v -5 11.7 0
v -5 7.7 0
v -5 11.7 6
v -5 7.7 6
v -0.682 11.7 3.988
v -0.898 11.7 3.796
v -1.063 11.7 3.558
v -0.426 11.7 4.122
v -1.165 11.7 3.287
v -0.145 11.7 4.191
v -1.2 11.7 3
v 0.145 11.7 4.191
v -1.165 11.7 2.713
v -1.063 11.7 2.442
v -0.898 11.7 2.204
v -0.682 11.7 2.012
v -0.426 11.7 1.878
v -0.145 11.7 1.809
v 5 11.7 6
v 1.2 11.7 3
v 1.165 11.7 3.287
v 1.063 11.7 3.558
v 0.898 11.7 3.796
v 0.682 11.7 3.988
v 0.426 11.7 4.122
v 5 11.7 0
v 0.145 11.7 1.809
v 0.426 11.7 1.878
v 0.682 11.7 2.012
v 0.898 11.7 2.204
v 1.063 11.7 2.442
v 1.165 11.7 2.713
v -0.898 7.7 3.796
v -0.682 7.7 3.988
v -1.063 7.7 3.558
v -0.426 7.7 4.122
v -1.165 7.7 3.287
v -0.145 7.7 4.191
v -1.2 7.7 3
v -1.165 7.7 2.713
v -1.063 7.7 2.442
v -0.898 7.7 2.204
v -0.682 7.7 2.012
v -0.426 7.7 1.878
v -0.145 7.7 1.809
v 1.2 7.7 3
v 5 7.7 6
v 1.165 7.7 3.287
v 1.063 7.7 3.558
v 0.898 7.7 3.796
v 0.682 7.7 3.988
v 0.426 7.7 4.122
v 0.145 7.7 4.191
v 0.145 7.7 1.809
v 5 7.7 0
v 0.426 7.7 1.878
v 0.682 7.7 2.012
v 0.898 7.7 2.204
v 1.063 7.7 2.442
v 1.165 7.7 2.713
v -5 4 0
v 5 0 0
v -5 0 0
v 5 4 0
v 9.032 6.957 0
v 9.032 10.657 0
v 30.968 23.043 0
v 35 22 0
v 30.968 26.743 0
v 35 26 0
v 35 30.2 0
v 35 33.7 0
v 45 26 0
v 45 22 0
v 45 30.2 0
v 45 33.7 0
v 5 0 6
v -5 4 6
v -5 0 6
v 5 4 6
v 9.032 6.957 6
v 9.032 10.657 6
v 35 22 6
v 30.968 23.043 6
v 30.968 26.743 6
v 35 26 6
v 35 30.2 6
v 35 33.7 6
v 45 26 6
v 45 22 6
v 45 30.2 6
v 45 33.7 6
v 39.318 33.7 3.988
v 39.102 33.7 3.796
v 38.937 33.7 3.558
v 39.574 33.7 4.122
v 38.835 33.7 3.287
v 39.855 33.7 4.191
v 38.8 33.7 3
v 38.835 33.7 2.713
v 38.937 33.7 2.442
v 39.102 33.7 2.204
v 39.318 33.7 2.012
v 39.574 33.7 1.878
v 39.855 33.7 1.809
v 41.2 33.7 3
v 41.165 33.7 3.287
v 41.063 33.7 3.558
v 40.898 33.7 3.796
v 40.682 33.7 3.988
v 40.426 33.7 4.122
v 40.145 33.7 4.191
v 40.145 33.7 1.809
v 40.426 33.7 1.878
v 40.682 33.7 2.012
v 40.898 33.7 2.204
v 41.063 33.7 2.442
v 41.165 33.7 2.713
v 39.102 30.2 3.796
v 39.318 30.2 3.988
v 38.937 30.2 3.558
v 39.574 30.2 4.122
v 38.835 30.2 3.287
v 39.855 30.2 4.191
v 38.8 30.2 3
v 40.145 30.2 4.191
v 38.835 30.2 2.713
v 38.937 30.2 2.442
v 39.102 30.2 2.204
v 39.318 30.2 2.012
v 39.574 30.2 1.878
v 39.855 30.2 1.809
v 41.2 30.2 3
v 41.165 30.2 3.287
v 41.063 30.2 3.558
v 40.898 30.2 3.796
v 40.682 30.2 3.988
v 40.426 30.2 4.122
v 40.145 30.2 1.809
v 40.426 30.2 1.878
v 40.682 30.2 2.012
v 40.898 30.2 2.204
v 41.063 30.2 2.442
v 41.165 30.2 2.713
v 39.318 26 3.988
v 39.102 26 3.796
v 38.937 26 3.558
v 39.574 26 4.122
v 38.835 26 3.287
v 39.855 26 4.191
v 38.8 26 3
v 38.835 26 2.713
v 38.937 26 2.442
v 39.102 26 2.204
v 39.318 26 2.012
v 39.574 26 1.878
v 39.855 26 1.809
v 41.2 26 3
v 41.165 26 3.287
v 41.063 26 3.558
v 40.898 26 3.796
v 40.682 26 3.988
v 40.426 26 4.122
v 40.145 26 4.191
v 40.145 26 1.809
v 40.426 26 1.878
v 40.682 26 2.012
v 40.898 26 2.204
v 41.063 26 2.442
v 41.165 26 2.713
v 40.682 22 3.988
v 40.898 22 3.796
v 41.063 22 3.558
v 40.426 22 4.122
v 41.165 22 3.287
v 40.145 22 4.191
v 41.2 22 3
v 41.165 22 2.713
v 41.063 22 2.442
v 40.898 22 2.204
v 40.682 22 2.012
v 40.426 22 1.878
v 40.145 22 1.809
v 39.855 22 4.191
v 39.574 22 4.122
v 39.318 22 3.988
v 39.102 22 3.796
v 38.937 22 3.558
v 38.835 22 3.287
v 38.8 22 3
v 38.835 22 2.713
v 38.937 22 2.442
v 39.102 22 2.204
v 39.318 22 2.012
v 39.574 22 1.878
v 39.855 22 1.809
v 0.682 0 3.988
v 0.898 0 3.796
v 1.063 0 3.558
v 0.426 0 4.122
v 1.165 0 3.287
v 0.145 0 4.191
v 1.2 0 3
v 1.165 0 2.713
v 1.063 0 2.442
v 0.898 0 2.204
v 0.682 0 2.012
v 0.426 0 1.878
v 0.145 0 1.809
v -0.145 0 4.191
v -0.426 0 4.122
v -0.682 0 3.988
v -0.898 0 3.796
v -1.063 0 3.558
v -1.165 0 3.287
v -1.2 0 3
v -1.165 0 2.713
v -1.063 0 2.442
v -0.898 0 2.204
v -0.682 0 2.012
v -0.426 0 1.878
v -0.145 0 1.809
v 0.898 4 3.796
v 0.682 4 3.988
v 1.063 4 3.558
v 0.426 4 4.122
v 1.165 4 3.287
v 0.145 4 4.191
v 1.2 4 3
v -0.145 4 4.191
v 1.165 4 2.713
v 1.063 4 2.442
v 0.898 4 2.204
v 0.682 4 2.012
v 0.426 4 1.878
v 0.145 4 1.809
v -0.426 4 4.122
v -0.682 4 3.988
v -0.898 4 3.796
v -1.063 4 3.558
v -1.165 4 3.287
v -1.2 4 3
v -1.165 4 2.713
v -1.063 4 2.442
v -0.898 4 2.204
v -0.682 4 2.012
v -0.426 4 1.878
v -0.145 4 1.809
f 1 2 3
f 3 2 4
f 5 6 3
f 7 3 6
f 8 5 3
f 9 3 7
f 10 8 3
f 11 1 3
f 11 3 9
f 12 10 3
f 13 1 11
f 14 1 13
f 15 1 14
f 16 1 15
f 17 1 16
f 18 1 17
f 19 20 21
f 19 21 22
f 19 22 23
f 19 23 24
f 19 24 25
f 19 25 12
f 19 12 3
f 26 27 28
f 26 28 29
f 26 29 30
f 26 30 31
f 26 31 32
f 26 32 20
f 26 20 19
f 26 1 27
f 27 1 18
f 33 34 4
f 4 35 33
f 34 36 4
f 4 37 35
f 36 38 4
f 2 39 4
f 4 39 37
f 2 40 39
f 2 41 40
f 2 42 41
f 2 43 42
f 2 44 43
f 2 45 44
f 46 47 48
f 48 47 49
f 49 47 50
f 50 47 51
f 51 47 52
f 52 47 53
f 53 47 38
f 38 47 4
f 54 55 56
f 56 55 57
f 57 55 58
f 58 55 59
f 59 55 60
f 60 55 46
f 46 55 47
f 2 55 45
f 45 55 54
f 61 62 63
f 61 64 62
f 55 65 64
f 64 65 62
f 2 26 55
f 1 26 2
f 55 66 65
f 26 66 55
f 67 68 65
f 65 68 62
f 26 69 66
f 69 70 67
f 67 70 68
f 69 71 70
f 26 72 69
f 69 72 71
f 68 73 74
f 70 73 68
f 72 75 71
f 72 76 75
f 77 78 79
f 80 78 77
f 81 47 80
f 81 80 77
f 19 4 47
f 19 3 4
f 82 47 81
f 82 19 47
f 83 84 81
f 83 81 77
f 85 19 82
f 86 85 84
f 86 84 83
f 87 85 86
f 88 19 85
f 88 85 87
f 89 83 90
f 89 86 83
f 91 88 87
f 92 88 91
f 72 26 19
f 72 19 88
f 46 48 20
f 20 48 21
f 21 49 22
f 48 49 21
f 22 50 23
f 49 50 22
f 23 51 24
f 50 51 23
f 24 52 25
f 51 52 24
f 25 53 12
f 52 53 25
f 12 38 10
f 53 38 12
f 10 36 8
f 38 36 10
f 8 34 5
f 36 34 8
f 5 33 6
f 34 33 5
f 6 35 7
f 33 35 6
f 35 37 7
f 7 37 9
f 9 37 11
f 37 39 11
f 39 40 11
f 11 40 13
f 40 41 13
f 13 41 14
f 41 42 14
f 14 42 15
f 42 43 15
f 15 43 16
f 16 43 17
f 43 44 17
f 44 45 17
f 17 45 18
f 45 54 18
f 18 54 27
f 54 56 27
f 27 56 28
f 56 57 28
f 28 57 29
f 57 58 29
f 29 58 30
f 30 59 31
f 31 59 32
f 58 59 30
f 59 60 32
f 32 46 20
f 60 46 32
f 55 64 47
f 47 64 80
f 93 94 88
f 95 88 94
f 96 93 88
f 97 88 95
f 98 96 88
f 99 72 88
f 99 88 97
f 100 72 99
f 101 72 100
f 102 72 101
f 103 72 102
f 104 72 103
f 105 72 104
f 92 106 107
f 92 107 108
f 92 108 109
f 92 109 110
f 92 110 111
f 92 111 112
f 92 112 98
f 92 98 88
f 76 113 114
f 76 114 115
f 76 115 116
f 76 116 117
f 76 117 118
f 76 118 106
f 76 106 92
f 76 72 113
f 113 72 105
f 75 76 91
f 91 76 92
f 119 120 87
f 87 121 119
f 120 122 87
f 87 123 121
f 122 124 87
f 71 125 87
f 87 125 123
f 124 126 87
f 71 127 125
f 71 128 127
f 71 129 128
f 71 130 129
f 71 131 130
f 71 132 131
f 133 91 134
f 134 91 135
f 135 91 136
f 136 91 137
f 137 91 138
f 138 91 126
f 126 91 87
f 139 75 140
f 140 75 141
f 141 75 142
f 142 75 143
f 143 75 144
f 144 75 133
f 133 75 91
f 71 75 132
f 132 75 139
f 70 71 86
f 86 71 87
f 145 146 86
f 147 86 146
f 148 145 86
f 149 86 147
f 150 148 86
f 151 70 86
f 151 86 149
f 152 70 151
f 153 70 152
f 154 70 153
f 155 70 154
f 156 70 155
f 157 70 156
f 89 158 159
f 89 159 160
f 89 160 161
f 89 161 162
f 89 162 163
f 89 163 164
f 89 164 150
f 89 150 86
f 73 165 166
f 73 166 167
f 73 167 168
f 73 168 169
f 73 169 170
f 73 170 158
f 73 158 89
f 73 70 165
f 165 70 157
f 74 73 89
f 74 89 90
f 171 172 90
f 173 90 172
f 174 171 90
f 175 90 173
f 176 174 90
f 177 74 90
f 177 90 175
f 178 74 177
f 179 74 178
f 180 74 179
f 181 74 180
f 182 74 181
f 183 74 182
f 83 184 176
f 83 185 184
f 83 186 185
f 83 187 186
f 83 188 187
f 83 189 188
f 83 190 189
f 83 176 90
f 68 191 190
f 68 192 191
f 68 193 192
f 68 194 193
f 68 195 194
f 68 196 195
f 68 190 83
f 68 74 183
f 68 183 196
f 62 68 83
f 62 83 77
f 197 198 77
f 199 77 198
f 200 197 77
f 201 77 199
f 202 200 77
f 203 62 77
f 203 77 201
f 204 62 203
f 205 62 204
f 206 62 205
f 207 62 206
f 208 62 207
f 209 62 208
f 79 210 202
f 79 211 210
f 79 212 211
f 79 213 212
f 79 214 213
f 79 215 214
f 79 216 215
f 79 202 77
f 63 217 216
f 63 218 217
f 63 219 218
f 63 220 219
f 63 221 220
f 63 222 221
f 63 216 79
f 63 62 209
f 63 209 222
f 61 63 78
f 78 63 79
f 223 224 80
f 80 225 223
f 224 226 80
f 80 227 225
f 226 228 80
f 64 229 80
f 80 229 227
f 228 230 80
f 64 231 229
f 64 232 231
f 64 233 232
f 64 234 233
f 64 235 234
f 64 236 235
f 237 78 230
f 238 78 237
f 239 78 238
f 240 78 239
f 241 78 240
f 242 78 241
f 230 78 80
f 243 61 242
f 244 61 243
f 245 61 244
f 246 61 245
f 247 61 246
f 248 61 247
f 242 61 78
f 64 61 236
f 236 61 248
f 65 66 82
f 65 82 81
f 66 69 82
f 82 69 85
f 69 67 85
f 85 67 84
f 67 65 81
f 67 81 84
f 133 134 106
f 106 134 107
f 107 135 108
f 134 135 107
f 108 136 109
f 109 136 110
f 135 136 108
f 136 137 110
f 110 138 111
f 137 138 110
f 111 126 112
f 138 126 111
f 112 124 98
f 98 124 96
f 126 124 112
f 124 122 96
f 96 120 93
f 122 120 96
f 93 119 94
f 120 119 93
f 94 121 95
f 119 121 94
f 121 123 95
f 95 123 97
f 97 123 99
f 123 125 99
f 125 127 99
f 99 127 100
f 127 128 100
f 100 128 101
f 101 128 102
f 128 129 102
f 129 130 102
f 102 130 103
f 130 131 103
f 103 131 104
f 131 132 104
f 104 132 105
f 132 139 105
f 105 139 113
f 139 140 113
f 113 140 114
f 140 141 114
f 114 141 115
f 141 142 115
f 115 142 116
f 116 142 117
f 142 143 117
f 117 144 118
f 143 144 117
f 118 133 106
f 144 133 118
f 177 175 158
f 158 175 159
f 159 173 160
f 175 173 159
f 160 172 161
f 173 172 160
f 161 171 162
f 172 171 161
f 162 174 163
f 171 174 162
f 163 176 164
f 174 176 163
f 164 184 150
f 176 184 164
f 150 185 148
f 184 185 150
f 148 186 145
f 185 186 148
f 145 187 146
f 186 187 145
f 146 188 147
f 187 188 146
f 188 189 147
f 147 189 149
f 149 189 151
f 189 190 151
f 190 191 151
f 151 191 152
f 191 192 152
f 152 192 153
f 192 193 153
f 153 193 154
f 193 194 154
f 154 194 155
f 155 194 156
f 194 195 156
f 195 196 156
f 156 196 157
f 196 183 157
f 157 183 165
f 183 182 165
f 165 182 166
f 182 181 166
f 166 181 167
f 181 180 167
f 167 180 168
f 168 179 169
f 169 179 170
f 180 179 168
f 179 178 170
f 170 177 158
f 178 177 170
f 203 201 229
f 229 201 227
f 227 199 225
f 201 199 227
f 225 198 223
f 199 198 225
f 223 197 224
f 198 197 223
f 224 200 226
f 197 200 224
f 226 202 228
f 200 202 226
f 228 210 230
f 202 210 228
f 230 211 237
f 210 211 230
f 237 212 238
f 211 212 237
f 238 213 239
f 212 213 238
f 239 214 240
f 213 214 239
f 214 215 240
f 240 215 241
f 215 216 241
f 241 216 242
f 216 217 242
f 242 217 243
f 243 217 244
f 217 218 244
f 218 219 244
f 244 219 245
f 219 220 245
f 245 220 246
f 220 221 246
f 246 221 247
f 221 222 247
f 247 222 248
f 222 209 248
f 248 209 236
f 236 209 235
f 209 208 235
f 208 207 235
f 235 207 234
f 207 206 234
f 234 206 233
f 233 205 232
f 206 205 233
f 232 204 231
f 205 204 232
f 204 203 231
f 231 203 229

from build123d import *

# Parameters (mm, degrees)
PAD_DEPTH    = 6
SKETCH001_R  = 1.2
POCKET_DEPTH = 50


with BuildPart() as part:
    # Sketch → Pad (new body)
    with BuildSketch(Plane.XY):
        Polygon((-5, 11.7), (5, 11.7), (35, 33.7), (45, 33.7), (45, 30.2), (35, 30.2), (35, 26), (45, 26), (45, 22), (35, 22), (5, 0), (-5, 0), (-5, 4), (5, 4), (5, 7.7), (-5, 7.7), align=None)
        Polygon((9.032025, 10.656818), (30.967975, 26.743182), (30.967975, 23.043182), (9.032025, 6.956818), align=None, mode=Mode.SUBTRACT)
    extrude(amount=PAD_DEPTH)

    # Sketch001 (on Face12 of Pad) → Pocket (cut)
    with BuildSketch(Plane.XZ):
        with Locations((0, 3)):
            Circle(SKETCH001_R)
        with Locations((40, 3)):
            Circle(SKETCH001_R)
    extrude(amount=-POCKET_DEPTH, mode=Mode.SUBTRACT)


solid = part.part
